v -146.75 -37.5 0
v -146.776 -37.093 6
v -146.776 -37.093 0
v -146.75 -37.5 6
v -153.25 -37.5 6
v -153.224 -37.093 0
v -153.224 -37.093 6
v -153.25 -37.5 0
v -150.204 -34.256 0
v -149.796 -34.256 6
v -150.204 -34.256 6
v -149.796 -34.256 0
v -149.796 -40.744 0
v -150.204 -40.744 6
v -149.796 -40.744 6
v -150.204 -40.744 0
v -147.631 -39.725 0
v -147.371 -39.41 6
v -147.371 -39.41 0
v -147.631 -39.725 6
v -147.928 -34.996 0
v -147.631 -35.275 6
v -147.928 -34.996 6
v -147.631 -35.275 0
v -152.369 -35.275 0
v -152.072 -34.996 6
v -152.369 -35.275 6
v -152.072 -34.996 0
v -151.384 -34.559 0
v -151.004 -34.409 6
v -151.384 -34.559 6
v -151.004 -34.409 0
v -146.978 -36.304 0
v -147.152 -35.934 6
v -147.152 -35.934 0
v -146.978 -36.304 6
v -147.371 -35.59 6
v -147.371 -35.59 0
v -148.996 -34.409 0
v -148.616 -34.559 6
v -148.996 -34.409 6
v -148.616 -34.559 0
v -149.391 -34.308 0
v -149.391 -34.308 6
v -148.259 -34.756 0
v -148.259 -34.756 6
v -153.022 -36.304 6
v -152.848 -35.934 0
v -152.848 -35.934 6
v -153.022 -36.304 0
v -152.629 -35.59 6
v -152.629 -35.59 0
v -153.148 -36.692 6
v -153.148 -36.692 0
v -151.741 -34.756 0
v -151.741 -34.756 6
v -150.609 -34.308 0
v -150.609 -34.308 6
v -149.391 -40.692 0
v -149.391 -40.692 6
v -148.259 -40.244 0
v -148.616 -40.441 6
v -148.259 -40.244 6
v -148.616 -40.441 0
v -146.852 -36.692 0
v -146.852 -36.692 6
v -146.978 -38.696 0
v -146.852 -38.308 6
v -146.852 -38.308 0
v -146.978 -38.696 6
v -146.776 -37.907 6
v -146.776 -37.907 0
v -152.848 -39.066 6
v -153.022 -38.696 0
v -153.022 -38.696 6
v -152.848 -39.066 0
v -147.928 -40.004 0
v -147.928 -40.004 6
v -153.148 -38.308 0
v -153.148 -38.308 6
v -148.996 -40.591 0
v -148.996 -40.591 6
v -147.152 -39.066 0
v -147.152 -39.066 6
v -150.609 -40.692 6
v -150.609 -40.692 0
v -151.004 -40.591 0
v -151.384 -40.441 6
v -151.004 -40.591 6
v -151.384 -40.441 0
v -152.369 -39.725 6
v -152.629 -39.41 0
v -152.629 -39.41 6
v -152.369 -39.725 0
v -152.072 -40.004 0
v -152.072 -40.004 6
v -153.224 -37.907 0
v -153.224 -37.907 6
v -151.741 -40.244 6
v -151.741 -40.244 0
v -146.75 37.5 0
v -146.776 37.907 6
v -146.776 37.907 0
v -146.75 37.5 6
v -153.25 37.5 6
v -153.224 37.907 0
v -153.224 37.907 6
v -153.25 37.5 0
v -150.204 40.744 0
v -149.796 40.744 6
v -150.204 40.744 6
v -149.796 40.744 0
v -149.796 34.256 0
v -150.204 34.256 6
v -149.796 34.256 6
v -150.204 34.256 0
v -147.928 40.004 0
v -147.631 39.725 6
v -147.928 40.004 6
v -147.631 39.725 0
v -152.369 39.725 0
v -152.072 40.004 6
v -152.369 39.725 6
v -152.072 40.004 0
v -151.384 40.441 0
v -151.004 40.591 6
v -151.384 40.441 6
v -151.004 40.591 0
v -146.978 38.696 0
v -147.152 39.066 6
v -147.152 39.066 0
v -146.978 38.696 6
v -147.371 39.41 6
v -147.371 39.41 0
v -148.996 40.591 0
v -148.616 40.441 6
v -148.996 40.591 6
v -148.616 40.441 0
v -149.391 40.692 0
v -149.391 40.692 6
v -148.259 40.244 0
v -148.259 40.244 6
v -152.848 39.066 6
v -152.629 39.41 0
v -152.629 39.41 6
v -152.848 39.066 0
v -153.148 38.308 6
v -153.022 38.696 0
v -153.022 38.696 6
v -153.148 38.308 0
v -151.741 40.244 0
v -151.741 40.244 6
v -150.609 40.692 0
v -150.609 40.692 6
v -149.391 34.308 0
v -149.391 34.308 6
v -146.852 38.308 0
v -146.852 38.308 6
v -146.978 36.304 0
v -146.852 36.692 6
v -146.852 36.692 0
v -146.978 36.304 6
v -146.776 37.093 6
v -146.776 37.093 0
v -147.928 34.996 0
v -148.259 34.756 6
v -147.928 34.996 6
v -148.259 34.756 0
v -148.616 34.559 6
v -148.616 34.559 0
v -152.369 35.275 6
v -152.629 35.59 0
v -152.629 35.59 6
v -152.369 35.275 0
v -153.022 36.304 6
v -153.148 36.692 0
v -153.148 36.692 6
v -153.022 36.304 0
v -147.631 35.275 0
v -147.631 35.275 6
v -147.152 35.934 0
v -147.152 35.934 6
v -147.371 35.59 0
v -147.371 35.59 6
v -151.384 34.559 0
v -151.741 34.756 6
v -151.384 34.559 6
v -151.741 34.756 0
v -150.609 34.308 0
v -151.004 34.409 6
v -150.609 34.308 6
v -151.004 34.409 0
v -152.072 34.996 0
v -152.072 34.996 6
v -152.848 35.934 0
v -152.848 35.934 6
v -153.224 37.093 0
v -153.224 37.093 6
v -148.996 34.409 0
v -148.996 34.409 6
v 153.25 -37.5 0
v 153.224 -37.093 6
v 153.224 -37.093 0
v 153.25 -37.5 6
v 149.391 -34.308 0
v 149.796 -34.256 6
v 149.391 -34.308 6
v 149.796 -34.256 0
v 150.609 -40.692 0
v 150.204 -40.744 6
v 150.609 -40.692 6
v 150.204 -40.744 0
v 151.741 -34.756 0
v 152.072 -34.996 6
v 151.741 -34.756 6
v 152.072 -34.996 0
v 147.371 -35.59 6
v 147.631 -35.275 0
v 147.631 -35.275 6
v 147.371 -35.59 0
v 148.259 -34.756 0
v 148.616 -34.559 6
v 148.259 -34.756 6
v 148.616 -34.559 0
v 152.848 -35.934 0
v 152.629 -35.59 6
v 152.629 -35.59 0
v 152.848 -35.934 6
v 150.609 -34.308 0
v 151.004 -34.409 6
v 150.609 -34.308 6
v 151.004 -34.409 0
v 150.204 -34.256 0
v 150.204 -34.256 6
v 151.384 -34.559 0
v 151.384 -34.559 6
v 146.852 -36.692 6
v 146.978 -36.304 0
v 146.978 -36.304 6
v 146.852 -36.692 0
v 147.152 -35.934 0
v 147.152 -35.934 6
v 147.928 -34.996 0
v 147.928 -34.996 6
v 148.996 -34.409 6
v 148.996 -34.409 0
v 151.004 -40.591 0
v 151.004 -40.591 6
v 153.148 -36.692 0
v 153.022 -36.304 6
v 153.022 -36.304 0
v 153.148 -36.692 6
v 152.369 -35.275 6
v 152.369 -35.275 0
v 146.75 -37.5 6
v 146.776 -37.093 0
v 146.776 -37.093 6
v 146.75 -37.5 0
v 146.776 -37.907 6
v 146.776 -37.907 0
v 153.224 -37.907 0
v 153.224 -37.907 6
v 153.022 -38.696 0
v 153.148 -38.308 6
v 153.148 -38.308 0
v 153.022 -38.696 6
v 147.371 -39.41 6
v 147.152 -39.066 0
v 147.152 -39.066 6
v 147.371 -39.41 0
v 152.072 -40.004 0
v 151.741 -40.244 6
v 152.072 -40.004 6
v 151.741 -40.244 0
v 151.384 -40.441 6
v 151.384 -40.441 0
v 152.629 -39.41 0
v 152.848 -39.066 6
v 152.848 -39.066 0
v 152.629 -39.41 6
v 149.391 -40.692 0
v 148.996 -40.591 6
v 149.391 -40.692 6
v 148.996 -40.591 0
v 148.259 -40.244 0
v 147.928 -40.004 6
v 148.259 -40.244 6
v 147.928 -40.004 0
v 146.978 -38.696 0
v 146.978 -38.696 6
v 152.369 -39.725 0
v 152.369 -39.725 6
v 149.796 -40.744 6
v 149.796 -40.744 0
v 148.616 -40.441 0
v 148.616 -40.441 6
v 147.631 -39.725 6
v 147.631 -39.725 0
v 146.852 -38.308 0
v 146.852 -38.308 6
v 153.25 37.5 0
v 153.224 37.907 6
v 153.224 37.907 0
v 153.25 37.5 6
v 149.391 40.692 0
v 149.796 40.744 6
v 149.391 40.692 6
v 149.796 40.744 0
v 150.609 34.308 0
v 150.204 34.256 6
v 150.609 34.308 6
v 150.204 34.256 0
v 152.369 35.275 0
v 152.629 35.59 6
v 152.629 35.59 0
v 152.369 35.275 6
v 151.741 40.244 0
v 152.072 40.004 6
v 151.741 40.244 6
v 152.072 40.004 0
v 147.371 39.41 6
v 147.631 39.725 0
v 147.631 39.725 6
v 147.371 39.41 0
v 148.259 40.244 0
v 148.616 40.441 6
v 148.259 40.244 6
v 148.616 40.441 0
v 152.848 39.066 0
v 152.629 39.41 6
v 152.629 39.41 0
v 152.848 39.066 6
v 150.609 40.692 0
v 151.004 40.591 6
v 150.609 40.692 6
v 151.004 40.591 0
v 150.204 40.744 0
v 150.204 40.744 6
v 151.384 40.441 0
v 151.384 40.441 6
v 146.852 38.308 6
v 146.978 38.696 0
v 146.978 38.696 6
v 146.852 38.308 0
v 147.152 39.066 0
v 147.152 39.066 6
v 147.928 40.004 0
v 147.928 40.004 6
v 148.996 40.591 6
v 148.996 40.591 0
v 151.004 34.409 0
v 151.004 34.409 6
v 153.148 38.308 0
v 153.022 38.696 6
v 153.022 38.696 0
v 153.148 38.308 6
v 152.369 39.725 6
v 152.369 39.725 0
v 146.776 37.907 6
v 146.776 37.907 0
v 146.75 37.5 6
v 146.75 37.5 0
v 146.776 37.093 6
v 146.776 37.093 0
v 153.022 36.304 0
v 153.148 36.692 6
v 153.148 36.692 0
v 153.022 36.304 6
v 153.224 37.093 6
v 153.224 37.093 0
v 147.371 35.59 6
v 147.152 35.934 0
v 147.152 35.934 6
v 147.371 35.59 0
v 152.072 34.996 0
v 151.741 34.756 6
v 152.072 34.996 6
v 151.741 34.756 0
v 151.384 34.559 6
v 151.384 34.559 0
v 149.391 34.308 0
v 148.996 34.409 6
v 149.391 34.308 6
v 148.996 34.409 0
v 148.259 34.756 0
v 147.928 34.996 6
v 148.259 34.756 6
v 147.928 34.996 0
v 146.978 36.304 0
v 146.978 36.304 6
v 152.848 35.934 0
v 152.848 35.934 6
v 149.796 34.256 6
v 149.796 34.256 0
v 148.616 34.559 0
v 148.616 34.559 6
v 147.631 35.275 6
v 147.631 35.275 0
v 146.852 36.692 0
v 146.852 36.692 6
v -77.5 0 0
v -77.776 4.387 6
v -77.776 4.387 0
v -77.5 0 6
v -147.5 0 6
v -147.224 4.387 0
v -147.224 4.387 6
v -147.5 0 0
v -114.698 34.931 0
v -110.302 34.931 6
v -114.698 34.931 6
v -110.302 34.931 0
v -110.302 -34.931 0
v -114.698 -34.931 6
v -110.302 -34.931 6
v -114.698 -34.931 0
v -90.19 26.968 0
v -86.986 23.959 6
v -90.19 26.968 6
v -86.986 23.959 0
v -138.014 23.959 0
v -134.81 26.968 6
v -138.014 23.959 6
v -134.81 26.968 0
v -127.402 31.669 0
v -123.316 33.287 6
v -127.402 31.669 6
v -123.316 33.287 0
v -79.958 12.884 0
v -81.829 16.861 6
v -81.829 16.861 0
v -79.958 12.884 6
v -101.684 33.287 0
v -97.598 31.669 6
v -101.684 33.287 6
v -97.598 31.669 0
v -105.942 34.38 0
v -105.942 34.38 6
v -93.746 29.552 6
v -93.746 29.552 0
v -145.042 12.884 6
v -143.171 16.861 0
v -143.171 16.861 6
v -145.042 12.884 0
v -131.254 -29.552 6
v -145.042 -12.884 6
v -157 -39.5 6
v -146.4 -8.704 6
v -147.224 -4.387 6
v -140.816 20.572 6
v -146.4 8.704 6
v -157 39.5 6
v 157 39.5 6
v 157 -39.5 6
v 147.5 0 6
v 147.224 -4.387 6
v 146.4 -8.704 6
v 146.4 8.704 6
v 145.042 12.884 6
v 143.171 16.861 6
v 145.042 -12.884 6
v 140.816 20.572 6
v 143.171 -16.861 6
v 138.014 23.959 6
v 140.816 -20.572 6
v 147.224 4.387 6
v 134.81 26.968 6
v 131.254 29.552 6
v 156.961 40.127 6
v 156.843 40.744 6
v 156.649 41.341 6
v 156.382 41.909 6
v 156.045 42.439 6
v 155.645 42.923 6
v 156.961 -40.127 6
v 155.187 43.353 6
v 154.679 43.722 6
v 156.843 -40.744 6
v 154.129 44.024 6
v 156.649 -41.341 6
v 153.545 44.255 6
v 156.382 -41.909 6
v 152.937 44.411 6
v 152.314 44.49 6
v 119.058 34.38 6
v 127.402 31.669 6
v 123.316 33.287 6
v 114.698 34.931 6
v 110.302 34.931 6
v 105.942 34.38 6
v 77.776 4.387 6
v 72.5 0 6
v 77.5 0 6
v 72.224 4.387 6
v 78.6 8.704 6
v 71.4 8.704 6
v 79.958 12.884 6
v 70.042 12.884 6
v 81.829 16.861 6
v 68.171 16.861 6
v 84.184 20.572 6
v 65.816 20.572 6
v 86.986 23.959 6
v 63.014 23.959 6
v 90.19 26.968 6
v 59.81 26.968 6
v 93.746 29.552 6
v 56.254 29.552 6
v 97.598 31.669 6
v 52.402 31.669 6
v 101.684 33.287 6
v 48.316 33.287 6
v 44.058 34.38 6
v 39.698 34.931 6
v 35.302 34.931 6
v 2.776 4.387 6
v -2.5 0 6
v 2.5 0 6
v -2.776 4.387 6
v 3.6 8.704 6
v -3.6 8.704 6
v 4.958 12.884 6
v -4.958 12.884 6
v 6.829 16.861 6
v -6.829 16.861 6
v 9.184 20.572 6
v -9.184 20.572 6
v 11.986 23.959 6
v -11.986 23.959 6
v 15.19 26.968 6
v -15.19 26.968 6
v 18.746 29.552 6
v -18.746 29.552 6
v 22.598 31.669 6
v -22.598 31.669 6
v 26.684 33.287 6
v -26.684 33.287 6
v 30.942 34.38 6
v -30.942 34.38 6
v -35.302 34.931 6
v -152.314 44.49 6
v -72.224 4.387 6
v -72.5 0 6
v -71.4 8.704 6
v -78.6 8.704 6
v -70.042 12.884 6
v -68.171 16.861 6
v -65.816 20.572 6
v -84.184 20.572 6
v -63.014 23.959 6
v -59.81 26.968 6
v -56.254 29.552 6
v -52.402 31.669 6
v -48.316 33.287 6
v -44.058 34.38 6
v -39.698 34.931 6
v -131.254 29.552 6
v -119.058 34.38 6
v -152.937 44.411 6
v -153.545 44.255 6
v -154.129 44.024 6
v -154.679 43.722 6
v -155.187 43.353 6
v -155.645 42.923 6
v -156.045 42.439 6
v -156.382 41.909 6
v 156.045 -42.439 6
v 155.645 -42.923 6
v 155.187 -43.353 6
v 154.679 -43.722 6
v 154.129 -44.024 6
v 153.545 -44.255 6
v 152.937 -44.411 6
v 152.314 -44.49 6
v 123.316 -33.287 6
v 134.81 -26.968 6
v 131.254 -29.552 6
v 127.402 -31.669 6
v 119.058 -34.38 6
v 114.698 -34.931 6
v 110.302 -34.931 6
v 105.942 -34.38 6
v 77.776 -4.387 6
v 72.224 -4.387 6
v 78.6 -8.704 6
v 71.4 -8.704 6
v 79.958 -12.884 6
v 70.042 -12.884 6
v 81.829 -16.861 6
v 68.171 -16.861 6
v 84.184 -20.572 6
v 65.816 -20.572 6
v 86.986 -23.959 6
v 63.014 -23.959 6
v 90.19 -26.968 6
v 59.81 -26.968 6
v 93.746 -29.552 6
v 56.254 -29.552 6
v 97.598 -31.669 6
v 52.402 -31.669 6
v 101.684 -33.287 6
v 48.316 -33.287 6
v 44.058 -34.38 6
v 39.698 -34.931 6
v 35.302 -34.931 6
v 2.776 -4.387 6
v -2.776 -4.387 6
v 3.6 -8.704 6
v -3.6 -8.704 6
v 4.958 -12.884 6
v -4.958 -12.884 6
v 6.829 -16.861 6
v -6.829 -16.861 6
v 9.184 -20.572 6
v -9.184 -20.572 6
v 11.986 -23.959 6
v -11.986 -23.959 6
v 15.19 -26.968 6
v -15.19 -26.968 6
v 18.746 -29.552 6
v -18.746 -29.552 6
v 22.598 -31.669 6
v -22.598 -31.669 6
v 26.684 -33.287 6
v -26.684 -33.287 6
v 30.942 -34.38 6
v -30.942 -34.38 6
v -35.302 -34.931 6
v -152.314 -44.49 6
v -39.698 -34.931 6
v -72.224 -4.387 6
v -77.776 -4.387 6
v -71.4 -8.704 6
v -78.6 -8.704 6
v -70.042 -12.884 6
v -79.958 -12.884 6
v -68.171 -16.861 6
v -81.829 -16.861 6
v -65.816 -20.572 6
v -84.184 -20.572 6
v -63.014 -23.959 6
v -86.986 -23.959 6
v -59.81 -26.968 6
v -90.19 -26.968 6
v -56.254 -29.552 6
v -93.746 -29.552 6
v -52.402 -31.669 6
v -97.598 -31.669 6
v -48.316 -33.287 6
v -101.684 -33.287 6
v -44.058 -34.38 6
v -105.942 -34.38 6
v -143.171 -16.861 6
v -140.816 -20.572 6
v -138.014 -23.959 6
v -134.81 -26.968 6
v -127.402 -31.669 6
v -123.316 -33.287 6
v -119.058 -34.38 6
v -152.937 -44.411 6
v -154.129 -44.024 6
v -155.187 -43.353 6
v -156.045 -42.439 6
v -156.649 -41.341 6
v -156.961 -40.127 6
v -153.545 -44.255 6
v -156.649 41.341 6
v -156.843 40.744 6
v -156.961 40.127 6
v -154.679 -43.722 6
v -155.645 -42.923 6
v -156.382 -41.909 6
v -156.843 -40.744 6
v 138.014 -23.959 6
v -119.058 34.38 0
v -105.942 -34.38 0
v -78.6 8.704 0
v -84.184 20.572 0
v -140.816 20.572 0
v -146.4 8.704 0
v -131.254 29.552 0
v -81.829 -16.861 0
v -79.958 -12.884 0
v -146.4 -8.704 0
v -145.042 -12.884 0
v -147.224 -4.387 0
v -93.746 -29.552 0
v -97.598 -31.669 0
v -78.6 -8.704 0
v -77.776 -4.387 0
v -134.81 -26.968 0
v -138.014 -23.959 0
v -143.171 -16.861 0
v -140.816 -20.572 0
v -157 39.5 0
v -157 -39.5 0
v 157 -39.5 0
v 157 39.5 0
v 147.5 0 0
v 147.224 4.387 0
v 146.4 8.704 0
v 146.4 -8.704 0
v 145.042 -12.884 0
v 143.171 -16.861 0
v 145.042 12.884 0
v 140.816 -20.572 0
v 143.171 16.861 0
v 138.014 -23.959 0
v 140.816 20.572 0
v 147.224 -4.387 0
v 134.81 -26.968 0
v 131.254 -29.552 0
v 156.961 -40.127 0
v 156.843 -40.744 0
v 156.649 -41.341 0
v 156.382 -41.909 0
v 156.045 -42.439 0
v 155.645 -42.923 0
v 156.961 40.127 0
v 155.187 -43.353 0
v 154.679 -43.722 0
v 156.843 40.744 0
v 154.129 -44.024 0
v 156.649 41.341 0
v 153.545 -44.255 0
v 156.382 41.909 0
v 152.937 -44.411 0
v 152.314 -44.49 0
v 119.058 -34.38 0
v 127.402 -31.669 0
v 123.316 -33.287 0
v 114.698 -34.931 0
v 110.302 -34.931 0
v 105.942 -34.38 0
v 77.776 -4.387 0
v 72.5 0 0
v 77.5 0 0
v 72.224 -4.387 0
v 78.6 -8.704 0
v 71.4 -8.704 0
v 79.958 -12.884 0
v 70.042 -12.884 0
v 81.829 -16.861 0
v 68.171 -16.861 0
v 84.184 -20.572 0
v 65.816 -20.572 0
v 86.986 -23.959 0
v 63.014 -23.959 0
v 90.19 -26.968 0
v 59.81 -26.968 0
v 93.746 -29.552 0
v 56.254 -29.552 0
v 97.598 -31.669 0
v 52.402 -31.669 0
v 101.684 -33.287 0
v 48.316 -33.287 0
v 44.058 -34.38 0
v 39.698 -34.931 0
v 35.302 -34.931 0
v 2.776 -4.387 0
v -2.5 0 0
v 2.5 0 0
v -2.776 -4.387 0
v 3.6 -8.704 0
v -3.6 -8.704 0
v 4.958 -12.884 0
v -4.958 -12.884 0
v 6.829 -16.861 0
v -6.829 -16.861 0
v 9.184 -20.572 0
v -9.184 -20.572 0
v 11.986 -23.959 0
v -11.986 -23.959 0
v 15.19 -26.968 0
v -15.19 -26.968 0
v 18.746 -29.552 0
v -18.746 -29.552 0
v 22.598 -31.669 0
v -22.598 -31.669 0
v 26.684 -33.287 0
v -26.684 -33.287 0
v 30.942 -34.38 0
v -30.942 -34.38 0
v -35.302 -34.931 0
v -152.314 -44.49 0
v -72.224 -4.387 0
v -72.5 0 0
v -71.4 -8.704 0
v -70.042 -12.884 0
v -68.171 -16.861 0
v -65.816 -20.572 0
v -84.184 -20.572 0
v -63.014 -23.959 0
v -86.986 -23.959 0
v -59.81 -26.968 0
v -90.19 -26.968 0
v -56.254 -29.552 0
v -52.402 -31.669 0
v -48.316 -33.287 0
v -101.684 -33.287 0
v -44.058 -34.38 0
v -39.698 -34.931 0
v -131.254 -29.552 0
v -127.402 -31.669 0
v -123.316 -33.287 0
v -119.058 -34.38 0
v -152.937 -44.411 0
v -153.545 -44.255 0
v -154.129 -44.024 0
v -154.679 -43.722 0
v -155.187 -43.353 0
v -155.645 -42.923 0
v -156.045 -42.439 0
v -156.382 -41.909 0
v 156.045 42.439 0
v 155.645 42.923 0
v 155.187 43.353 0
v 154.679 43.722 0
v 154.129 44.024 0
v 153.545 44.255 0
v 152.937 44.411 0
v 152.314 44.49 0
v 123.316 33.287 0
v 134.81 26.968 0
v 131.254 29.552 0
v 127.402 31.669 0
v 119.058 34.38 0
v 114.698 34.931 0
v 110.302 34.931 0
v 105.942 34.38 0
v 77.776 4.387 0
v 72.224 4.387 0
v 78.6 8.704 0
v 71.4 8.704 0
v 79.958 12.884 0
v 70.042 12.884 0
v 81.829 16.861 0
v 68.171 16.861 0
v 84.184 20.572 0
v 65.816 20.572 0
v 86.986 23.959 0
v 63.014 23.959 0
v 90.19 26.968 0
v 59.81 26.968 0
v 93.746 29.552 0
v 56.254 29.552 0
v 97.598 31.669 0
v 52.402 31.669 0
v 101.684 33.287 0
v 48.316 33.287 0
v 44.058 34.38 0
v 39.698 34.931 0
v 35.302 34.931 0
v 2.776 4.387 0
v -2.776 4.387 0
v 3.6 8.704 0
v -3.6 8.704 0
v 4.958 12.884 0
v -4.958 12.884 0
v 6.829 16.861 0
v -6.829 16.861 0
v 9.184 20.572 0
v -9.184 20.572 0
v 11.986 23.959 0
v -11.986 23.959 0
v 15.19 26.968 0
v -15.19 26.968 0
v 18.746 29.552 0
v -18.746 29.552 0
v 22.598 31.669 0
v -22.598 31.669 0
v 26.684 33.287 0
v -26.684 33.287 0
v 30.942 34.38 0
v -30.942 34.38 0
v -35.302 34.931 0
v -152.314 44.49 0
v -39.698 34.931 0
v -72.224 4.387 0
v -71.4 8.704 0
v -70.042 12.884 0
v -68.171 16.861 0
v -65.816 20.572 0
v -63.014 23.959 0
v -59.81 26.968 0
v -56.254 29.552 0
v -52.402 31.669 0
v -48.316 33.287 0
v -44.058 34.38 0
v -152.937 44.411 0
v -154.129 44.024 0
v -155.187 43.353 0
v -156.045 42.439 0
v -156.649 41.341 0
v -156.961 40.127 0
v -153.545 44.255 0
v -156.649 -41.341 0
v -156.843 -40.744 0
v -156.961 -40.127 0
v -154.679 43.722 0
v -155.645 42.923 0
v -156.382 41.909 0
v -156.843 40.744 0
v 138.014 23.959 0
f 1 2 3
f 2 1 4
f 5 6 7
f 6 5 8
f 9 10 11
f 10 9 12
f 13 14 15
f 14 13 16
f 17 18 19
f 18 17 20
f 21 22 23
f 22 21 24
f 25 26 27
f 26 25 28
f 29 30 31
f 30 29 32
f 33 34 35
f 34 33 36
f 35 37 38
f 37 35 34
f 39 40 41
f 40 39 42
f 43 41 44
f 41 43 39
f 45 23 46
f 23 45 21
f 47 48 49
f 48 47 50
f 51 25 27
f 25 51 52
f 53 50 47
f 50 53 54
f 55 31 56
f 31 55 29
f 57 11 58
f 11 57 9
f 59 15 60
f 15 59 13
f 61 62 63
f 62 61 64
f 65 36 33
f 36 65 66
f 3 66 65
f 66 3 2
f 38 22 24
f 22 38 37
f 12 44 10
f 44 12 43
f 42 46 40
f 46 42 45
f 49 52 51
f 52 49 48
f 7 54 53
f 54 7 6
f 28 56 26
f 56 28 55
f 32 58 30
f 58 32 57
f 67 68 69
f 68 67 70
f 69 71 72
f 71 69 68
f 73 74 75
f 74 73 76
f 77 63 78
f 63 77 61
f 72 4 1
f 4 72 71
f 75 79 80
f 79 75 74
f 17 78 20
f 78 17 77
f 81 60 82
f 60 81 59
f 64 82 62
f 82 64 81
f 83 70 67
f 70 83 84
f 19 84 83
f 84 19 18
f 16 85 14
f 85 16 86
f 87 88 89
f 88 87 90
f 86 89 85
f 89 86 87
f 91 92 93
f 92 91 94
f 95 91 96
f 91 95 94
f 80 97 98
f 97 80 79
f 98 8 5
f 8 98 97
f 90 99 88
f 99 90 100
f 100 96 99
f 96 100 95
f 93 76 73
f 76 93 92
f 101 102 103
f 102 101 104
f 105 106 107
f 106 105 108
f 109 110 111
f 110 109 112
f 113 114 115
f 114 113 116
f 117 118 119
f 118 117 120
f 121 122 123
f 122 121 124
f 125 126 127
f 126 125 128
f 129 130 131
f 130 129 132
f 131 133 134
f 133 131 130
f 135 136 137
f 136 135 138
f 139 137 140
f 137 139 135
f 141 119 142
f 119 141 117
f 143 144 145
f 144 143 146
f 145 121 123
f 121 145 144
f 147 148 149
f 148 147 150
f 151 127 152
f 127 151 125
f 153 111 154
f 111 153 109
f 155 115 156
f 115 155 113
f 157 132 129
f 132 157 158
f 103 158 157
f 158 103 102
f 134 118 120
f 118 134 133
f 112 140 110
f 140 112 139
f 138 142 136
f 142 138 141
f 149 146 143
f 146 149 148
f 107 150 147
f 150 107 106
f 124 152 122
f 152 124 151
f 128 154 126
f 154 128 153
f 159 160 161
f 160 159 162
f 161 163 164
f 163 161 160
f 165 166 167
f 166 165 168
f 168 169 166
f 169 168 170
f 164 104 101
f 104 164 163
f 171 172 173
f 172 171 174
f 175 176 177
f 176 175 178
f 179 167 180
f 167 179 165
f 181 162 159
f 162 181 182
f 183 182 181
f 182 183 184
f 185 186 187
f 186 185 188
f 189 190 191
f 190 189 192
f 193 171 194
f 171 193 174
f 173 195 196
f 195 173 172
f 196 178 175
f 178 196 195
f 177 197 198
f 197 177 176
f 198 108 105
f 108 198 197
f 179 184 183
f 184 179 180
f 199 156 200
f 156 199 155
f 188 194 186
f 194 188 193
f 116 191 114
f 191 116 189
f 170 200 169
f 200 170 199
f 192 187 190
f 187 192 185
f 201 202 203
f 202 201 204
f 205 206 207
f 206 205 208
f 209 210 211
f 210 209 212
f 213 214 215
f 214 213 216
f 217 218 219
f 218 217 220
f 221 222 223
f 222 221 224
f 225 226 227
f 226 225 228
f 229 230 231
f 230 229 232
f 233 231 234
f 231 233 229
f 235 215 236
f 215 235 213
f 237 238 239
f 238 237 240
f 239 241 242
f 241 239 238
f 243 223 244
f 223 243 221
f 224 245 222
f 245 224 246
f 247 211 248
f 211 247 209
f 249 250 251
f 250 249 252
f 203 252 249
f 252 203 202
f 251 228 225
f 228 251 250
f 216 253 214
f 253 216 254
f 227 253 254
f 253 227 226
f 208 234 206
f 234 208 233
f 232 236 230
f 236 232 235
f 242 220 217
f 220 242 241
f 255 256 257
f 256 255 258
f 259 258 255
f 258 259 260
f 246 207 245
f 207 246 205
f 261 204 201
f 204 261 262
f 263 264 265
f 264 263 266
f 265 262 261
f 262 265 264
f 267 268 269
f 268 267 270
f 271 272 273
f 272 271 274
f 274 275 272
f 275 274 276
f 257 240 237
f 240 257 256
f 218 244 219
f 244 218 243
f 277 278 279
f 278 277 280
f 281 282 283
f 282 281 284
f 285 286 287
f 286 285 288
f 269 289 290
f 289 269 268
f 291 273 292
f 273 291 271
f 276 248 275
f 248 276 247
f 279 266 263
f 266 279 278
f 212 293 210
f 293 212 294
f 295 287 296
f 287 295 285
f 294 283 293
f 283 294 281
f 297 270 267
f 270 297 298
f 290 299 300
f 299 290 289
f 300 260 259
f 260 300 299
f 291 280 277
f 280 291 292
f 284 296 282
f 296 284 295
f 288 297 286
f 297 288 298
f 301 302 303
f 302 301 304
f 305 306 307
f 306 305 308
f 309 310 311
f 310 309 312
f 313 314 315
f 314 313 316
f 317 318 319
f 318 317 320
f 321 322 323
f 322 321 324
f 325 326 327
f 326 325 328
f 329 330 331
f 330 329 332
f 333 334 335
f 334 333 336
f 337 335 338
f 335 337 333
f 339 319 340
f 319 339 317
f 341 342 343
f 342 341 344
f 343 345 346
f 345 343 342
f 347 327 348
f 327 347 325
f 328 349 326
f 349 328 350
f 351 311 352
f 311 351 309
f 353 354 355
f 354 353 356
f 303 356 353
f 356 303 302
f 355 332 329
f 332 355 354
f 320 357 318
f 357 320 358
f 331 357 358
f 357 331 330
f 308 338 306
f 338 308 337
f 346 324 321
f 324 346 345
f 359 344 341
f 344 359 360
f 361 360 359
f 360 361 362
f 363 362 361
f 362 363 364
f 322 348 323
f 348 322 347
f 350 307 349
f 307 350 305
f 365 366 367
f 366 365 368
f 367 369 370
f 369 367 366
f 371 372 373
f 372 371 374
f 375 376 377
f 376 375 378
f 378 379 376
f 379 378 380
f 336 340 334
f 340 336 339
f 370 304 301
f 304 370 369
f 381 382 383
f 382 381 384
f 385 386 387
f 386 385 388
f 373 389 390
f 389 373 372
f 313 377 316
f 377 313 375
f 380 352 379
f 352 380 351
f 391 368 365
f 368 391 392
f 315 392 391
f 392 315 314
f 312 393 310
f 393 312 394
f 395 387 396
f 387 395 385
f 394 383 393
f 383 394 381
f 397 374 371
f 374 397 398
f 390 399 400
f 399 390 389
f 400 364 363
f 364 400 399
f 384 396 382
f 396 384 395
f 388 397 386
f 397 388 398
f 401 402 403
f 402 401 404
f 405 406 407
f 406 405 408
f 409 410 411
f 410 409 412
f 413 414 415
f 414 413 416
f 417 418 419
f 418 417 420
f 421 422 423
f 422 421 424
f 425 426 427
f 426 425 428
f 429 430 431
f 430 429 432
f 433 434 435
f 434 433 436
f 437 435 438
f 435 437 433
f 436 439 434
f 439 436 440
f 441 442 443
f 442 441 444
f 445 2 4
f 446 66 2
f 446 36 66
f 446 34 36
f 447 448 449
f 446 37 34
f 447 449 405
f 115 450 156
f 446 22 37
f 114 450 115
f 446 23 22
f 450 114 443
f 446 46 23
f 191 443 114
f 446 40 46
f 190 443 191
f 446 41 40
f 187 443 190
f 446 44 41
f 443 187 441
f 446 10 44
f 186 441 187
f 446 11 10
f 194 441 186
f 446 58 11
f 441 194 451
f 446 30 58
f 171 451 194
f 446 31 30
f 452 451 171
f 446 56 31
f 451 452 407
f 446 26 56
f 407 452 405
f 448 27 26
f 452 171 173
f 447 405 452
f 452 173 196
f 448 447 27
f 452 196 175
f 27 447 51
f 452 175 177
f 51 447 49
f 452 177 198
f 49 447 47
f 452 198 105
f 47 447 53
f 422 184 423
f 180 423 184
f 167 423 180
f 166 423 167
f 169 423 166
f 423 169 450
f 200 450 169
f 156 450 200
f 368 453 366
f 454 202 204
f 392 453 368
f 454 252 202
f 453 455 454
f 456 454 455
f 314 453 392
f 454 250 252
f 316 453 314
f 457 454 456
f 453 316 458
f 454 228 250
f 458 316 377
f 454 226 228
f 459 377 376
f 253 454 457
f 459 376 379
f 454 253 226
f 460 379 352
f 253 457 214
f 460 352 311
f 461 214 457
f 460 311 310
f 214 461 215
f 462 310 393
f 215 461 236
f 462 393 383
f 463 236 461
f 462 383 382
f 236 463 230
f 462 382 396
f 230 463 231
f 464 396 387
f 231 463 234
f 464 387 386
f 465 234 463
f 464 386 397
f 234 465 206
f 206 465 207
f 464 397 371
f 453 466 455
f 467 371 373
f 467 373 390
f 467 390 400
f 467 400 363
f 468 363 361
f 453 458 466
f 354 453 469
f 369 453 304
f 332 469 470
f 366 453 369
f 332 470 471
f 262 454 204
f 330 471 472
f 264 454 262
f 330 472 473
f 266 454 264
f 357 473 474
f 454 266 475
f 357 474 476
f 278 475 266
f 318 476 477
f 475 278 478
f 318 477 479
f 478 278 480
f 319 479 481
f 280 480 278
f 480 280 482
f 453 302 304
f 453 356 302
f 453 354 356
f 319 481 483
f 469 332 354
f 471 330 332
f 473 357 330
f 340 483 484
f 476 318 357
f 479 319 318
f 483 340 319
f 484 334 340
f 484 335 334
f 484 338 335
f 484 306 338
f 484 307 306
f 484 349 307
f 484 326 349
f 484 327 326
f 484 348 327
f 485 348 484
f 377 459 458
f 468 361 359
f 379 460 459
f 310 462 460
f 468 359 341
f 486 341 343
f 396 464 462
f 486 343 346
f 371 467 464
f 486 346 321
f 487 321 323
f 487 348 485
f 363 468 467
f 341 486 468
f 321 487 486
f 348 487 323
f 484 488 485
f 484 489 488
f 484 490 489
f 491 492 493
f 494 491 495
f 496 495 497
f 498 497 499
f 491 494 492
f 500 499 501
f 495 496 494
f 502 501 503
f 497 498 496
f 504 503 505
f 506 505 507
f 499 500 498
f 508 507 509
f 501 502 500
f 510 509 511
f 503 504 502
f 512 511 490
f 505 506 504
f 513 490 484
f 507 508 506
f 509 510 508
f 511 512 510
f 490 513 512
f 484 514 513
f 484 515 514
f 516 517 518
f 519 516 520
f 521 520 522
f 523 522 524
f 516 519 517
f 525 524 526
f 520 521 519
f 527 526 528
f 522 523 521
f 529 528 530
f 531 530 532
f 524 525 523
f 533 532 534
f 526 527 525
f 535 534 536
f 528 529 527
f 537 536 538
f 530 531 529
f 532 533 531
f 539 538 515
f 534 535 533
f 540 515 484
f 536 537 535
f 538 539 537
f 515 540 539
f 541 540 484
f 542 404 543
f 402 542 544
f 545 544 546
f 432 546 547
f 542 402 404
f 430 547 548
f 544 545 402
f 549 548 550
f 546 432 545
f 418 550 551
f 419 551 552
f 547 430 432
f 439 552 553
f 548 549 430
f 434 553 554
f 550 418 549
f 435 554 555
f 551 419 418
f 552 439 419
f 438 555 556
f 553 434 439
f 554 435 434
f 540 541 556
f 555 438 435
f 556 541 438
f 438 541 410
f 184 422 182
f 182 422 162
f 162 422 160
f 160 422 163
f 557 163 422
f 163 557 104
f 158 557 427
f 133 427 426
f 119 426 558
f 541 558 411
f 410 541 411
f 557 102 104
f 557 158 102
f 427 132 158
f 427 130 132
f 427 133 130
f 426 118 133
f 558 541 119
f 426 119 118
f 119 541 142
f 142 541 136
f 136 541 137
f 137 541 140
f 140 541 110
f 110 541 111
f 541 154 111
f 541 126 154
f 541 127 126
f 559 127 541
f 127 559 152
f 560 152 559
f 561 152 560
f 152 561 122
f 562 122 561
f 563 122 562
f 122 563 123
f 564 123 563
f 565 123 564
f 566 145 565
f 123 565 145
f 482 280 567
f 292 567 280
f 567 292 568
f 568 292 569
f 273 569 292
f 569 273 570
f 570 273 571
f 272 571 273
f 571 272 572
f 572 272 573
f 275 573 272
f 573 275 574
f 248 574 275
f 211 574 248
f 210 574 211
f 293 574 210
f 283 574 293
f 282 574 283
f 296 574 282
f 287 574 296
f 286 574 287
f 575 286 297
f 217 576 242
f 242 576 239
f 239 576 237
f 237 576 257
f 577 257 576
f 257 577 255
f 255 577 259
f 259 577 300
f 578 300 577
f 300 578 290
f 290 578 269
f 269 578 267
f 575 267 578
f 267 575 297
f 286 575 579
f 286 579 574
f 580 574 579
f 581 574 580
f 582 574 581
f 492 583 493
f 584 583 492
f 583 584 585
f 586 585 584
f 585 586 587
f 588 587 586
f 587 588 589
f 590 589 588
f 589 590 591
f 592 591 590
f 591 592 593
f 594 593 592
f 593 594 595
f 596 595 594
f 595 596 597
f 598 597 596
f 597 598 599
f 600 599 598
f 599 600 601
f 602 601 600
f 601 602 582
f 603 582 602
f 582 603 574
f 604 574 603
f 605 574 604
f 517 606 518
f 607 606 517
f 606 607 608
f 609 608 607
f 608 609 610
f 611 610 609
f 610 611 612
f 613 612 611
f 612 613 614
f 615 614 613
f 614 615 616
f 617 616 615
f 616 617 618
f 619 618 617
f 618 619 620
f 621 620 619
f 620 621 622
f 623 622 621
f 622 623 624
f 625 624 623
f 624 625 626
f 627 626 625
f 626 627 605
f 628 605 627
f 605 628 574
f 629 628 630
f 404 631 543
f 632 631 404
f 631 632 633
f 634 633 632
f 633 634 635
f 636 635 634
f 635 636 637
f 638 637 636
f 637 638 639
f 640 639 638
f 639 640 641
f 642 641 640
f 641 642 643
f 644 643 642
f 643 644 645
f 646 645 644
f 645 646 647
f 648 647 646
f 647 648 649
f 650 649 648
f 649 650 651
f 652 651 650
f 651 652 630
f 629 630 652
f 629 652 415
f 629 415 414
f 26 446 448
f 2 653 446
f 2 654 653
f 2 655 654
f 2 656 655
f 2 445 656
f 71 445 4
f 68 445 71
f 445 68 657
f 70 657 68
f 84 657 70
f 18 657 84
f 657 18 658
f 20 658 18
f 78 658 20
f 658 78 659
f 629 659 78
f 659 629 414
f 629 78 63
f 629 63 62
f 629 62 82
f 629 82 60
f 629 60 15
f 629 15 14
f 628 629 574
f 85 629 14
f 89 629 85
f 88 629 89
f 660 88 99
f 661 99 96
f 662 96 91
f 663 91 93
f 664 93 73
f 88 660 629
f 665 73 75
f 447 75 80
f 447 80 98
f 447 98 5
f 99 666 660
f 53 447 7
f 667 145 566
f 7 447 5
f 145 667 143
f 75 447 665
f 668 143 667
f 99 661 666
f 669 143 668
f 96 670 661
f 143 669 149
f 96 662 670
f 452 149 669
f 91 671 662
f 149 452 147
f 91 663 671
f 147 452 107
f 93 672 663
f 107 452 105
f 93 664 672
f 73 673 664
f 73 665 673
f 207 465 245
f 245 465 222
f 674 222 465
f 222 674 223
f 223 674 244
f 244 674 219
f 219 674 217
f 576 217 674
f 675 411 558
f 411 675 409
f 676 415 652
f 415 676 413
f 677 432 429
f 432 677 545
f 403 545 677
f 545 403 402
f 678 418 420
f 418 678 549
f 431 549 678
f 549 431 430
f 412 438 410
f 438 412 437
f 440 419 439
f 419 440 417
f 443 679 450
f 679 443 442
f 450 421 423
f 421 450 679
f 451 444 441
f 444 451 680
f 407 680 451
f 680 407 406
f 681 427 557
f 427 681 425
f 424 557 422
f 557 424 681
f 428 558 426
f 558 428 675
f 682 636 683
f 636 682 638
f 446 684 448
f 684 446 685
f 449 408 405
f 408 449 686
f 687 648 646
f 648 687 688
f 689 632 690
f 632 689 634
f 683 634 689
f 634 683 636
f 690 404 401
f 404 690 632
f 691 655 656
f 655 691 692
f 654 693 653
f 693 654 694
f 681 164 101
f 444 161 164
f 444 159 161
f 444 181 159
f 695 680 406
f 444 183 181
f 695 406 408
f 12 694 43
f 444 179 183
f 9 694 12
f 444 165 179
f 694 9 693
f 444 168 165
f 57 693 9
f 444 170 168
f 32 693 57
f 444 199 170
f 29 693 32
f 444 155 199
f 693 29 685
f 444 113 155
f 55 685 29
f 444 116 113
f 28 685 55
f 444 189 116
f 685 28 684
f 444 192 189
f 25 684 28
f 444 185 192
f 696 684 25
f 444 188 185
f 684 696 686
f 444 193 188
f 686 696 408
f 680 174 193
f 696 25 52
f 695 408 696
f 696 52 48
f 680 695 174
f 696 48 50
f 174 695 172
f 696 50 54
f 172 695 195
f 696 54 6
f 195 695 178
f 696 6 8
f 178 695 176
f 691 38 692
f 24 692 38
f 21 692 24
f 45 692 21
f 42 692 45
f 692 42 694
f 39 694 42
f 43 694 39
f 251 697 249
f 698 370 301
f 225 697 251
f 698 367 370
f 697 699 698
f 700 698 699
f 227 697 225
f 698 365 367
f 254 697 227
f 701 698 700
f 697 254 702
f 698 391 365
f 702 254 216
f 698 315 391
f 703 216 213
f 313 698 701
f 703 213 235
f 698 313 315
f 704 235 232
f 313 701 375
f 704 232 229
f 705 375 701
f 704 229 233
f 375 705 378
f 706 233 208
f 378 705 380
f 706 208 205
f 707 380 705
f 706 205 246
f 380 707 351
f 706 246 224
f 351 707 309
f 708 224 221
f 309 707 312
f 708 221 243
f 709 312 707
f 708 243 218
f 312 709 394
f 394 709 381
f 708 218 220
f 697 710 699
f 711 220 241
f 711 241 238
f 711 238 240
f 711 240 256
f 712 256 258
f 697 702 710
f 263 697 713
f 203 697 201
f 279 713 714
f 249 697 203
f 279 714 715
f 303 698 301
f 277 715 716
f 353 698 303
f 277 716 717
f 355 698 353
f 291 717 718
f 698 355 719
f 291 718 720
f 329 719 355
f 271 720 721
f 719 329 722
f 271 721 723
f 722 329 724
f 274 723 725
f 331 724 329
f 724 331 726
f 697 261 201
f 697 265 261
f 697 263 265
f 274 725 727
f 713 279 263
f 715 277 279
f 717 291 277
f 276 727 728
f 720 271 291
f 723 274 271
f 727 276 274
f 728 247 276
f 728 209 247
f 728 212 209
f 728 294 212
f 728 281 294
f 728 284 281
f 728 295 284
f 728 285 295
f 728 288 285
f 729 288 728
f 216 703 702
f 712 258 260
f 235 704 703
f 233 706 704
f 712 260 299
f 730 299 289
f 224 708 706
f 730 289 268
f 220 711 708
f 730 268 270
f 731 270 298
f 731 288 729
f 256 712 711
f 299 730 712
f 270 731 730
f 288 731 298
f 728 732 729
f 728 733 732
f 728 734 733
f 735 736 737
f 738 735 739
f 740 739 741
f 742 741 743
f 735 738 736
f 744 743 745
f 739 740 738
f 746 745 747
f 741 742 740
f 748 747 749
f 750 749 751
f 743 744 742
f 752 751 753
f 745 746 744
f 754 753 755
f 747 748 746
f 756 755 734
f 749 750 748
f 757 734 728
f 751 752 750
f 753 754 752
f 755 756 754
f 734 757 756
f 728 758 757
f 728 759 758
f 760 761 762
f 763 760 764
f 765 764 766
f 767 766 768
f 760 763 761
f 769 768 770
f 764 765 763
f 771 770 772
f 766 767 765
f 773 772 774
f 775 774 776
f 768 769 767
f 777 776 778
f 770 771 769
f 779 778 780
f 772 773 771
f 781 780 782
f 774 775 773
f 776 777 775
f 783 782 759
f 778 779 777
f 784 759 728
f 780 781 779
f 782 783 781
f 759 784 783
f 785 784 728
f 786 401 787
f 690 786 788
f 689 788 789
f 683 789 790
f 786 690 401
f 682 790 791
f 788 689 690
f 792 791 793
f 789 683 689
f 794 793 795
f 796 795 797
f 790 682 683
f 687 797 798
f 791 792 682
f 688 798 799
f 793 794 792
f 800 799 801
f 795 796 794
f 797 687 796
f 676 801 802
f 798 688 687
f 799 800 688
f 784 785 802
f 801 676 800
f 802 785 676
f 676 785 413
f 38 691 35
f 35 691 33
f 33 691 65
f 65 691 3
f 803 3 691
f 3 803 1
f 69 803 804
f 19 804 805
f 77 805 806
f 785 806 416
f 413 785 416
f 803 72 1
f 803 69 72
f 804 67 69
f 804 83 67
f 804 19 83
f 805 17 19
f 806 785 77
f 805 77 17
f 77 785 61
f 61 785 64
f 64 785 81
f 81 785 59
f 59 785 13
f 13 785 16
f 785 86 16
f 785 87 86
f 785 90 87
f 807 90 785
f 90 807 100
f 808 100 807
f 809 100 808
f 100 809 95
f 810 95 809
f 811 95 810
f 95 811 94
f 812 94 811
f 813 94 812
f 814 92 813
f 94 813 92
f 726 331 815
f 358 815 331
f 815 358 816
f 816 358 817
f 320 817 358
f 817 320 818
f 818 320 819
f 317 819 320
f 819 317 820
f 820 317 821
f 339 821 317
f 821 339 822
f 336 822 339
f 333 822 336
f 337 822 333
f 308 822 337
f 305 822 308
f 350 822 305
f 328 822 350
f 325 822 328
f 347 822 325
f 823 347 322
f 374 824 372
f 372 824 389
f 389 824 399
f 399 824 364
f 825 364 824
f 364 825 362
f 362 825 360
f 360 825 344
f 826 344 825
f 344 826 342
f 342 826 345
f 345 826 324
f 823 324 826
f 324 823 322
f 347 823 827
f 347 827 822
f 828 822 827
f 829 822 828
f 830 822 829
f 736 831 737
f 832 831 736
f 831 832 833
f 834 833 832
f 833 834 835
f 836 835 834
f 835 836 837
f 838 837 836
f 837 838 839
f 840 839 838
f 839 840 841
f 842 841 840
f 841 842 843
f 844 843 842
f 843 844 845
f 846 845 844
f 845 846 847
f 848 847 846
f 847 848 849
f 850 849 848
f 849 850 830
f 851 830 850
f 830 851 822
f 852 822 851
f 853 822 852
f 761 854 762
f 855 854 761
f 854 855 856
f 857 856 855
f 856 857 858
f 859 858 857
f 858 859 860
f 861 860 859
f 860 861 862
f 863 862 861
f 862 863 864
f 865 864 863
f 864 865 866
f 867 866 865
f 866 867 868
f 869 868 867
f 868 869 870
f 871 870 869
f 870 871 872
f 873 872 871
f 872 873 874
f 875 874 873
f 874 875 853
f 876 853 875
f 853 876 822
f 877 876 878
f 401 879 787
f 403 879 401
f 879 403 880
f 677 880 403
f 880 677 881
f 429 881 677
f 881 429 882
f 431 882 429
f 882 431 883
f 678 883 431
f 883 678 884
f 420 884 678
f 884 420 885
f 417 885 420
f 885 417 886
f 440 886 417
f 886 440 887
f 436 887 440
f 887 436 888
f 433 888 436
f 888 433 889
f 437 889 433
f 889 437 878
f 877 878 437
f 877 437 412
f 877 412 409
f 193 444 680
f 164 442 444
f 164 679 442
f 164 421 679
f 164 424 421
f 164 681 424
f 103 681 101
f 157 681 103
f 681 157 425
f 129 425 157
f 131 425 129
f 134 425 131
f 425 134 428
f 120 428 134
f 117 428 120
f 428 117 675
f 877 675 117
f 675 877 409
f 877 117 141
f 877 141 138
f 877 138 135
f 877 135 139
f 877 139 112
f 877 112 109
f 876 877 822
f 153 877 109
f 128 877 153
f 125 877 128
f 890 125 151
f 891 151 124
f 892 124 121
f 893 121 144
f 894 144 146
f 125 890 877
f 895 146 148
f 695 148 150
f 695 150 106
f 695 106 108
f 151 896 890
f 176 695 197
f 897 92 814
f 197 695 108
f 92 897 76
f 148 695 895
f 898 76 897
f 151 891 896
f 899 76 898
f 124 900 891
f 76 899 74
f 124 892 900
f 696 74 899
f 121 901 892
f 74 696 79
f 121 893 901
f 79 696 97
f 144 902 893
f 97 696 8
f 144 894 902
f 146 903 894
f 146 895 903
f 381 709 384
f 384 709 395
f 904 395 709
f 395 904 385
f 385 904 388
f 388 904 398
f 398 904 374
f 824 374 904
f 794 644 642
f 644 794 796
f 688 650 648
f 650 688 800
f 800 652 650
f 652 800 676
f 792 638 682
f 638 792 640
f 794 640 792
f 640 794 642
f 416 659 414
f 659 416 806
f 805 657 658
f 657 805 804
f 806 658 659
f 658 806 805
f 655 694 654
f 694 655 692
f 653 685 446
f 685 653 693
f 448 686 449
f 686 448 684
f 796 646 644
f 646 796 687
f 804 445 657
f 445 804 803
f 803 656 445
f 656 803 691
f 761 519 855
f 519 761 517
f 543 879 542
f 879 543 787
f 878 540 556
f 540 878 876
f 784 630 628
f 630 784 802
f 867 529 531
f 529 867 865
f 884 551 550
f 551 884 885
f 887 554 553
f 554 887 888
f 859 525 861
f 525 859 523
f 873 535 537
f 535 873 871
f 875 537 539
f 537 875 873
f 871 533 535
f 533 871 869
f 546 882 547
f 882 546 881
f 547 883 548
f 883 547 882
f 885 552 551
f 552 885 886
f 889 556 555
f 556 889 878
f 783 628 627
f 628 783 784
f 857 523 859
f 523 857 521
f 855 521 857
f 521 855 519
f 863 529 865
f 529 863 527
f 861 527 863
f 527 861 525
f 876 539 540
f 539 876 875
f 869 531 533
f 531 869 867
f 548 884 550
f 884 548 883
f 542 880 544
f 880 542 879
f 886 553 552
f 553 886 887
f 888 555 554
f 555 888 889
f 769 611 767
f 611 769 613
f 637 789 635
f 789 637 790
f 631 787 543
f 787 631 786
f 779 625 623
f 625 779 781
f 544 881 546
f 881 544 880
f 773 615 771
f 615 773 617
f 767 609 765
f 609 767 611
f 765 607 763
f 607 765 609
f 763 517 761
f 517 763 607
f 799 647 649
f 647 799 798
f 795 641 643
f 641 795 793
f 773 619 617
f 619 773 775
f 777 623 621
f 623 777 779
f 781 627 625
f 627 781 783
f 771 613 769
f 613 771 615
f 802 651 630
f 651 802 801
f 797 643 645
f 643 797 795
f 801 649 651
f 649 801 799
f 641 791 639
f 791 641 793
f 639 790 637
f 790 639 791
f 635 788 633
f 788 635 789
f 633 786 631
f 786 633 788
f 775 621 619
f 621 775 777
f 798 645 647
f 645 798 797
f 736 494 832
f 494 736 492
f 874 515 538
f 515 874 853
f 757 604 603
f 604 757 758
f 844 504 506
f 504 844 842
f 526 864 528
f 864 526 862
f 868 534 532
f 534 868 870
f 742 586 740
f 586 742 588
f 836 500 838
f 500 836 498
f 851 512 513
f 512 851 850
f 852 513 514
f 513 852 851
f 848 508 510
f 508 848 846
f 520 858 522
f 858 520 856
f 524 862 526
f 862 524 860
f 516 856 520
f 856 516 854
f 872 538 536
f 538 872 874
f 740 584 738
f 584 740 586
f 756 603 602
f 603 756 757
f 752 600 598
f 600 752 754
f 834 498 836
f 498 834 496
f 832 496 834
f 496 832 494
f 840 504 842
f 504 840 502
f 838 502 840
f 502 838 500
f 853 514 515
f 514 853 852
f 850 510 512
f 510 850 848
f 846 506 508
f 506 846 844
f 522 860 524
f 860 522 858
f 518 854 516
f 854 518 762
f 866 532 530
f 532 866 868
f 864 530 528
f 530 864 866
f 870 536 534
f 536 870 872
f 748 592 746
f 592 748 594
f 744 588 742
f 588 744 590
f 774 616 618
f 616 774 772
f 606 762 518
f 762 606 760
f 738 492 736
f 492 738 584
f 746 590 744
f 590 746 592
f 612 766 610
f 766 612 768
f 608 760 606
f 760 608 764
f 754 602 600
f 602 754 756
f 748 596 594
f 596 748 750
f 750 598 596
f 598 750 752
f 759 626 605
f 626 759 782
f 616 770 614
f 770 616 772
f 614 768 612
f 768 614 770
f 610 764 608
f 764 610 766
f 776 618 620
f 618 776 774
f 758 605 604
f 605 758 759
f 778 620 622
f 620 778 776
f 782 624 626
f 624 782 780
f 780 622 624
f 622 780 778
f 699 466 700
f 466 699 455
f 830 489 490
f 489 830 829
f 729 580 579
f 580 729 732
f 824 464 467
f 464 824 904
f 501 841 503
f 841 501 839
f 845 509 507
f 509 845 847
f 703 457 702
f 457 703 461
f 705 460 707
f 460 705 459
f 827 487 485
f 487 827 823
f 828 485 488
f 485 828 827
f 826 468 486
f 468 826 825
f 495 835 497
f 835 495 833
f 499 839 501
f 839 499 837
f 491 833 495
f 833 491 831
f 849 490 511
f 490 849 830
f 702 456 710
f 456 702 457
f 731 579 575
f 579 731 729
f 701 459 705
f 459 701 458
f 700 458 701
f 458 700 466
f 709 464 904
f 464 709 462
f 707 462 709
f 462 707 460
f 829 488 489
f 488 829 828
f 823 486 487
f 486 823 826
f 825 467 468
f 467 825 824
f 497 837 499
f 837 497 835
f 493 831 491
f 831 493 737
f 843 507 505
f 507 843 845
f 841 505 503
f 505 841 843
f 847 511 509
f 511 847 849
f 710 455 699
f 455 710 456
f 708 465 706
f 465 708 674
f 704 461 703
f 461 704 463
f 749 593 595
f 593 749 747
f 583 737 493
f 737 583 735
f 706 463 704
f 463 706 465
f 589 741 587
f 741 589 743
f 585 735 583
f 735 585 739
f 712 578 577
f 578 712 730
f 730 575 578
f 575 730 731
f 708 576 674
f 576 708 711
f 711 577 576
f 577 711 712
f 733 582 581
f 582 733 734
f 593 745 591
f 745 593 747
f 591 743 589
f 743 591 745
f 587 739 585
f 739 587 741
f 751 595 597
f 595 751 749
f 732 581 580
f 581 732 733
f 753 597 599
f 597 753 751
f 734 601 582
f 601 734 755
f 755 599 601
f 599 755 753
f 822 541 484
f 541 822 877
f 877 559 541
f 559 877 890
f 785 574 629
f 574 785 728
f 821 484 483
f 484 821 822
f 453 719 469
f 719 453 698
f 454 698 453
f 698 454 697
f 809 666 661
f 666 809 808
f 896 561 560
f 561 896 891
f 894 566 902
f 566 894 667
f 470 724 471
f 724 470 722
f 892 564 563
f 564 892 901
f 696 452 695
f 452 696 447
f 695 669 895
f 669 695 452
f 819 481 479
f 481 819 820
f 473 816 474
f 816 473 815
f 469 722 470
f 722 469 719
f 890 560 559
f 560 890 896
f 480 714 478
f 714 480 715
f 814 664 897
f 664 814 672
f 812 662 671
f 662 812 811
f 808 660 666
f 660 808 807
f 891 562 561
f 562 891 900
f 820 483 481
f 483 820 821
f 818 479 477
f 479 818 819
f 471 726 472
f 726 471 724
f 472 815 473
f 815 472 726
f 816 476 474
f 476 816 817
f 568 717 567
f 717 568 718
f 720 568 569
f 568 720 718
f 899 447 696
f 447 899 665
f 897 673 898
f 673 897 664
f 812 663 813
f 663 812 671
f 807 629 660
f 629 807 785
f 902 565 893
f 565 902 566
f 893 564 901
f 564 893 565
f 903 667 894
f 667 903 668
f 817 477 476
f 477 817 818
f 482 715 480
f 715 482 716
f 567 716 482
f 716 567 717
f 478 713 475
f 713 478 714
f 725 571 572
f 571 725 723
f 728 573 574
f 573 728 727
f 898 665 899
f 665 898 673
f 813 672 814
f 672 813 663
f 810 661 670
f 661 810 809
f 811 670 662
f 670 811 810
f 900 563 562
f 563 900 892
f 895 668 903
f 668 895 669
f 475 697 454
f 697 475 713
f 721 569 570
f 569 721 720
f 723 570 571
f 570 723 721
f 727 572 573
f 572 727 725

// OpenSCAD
$fn = 50;


difference() {
	union() {
		hull() {
			translate(v = [-152.0000000000, 39.5000000000, 0]) {
				cylinder(h = 6, r = 5);
			}
			translate(v = [152.0000000000, 39.5000000000, 0]) {
				cylinder(h = 6, r = 5);
			}
			translate(v = [-152.0000000000, -39.5000000000, 0]) {
				cylinder(h = 6, r = 5);
			}
			translate(v = [152.0000000000, -39.5000000000, 0]) {
				cylinder(h = 6, r = 5);
			}
		}
	}
	union() {
		#translate(v = [-150.0000000000, -37.5000000000, -100.0000000000]) {
			cylinder(h = 200, r = 3.2500000000);
		}
		#translate(v = [-150.0000000000, 37.5000000000, -100.0000000000]) {
			cylinder(h = 200, r = 3.2500000000);
		}
		#translate(v = [150.0000000000, -37.5000000000, -100.0000000000]) {
			cylinder(h = 200, r = 3.2500000000);
		}
		#translate(v = [150.0000000000, 37.5000000000, -100.0000000000]) {
			cylinder(h = 200, r = 3.2500000000);
		}
		#translate(v = [-112.5000000000, 0, 0]) {
			cylinder(h = 6, r = 35.0000000000);
		}
		#translate(v = [-37.5000000000, 0, 0]) {
			cylinder(h = 6, r = 35.0000000000);
		}
		#translate(v = [37.5000000000, 0, 0]) {
			cylinder(h = 6, r = 35.0000000000);
		}
		#translate(v = [112.5000000000, 0, 0]) {
			cylinder(h = 6, r = 35.0000000000);
		}
	}
}
